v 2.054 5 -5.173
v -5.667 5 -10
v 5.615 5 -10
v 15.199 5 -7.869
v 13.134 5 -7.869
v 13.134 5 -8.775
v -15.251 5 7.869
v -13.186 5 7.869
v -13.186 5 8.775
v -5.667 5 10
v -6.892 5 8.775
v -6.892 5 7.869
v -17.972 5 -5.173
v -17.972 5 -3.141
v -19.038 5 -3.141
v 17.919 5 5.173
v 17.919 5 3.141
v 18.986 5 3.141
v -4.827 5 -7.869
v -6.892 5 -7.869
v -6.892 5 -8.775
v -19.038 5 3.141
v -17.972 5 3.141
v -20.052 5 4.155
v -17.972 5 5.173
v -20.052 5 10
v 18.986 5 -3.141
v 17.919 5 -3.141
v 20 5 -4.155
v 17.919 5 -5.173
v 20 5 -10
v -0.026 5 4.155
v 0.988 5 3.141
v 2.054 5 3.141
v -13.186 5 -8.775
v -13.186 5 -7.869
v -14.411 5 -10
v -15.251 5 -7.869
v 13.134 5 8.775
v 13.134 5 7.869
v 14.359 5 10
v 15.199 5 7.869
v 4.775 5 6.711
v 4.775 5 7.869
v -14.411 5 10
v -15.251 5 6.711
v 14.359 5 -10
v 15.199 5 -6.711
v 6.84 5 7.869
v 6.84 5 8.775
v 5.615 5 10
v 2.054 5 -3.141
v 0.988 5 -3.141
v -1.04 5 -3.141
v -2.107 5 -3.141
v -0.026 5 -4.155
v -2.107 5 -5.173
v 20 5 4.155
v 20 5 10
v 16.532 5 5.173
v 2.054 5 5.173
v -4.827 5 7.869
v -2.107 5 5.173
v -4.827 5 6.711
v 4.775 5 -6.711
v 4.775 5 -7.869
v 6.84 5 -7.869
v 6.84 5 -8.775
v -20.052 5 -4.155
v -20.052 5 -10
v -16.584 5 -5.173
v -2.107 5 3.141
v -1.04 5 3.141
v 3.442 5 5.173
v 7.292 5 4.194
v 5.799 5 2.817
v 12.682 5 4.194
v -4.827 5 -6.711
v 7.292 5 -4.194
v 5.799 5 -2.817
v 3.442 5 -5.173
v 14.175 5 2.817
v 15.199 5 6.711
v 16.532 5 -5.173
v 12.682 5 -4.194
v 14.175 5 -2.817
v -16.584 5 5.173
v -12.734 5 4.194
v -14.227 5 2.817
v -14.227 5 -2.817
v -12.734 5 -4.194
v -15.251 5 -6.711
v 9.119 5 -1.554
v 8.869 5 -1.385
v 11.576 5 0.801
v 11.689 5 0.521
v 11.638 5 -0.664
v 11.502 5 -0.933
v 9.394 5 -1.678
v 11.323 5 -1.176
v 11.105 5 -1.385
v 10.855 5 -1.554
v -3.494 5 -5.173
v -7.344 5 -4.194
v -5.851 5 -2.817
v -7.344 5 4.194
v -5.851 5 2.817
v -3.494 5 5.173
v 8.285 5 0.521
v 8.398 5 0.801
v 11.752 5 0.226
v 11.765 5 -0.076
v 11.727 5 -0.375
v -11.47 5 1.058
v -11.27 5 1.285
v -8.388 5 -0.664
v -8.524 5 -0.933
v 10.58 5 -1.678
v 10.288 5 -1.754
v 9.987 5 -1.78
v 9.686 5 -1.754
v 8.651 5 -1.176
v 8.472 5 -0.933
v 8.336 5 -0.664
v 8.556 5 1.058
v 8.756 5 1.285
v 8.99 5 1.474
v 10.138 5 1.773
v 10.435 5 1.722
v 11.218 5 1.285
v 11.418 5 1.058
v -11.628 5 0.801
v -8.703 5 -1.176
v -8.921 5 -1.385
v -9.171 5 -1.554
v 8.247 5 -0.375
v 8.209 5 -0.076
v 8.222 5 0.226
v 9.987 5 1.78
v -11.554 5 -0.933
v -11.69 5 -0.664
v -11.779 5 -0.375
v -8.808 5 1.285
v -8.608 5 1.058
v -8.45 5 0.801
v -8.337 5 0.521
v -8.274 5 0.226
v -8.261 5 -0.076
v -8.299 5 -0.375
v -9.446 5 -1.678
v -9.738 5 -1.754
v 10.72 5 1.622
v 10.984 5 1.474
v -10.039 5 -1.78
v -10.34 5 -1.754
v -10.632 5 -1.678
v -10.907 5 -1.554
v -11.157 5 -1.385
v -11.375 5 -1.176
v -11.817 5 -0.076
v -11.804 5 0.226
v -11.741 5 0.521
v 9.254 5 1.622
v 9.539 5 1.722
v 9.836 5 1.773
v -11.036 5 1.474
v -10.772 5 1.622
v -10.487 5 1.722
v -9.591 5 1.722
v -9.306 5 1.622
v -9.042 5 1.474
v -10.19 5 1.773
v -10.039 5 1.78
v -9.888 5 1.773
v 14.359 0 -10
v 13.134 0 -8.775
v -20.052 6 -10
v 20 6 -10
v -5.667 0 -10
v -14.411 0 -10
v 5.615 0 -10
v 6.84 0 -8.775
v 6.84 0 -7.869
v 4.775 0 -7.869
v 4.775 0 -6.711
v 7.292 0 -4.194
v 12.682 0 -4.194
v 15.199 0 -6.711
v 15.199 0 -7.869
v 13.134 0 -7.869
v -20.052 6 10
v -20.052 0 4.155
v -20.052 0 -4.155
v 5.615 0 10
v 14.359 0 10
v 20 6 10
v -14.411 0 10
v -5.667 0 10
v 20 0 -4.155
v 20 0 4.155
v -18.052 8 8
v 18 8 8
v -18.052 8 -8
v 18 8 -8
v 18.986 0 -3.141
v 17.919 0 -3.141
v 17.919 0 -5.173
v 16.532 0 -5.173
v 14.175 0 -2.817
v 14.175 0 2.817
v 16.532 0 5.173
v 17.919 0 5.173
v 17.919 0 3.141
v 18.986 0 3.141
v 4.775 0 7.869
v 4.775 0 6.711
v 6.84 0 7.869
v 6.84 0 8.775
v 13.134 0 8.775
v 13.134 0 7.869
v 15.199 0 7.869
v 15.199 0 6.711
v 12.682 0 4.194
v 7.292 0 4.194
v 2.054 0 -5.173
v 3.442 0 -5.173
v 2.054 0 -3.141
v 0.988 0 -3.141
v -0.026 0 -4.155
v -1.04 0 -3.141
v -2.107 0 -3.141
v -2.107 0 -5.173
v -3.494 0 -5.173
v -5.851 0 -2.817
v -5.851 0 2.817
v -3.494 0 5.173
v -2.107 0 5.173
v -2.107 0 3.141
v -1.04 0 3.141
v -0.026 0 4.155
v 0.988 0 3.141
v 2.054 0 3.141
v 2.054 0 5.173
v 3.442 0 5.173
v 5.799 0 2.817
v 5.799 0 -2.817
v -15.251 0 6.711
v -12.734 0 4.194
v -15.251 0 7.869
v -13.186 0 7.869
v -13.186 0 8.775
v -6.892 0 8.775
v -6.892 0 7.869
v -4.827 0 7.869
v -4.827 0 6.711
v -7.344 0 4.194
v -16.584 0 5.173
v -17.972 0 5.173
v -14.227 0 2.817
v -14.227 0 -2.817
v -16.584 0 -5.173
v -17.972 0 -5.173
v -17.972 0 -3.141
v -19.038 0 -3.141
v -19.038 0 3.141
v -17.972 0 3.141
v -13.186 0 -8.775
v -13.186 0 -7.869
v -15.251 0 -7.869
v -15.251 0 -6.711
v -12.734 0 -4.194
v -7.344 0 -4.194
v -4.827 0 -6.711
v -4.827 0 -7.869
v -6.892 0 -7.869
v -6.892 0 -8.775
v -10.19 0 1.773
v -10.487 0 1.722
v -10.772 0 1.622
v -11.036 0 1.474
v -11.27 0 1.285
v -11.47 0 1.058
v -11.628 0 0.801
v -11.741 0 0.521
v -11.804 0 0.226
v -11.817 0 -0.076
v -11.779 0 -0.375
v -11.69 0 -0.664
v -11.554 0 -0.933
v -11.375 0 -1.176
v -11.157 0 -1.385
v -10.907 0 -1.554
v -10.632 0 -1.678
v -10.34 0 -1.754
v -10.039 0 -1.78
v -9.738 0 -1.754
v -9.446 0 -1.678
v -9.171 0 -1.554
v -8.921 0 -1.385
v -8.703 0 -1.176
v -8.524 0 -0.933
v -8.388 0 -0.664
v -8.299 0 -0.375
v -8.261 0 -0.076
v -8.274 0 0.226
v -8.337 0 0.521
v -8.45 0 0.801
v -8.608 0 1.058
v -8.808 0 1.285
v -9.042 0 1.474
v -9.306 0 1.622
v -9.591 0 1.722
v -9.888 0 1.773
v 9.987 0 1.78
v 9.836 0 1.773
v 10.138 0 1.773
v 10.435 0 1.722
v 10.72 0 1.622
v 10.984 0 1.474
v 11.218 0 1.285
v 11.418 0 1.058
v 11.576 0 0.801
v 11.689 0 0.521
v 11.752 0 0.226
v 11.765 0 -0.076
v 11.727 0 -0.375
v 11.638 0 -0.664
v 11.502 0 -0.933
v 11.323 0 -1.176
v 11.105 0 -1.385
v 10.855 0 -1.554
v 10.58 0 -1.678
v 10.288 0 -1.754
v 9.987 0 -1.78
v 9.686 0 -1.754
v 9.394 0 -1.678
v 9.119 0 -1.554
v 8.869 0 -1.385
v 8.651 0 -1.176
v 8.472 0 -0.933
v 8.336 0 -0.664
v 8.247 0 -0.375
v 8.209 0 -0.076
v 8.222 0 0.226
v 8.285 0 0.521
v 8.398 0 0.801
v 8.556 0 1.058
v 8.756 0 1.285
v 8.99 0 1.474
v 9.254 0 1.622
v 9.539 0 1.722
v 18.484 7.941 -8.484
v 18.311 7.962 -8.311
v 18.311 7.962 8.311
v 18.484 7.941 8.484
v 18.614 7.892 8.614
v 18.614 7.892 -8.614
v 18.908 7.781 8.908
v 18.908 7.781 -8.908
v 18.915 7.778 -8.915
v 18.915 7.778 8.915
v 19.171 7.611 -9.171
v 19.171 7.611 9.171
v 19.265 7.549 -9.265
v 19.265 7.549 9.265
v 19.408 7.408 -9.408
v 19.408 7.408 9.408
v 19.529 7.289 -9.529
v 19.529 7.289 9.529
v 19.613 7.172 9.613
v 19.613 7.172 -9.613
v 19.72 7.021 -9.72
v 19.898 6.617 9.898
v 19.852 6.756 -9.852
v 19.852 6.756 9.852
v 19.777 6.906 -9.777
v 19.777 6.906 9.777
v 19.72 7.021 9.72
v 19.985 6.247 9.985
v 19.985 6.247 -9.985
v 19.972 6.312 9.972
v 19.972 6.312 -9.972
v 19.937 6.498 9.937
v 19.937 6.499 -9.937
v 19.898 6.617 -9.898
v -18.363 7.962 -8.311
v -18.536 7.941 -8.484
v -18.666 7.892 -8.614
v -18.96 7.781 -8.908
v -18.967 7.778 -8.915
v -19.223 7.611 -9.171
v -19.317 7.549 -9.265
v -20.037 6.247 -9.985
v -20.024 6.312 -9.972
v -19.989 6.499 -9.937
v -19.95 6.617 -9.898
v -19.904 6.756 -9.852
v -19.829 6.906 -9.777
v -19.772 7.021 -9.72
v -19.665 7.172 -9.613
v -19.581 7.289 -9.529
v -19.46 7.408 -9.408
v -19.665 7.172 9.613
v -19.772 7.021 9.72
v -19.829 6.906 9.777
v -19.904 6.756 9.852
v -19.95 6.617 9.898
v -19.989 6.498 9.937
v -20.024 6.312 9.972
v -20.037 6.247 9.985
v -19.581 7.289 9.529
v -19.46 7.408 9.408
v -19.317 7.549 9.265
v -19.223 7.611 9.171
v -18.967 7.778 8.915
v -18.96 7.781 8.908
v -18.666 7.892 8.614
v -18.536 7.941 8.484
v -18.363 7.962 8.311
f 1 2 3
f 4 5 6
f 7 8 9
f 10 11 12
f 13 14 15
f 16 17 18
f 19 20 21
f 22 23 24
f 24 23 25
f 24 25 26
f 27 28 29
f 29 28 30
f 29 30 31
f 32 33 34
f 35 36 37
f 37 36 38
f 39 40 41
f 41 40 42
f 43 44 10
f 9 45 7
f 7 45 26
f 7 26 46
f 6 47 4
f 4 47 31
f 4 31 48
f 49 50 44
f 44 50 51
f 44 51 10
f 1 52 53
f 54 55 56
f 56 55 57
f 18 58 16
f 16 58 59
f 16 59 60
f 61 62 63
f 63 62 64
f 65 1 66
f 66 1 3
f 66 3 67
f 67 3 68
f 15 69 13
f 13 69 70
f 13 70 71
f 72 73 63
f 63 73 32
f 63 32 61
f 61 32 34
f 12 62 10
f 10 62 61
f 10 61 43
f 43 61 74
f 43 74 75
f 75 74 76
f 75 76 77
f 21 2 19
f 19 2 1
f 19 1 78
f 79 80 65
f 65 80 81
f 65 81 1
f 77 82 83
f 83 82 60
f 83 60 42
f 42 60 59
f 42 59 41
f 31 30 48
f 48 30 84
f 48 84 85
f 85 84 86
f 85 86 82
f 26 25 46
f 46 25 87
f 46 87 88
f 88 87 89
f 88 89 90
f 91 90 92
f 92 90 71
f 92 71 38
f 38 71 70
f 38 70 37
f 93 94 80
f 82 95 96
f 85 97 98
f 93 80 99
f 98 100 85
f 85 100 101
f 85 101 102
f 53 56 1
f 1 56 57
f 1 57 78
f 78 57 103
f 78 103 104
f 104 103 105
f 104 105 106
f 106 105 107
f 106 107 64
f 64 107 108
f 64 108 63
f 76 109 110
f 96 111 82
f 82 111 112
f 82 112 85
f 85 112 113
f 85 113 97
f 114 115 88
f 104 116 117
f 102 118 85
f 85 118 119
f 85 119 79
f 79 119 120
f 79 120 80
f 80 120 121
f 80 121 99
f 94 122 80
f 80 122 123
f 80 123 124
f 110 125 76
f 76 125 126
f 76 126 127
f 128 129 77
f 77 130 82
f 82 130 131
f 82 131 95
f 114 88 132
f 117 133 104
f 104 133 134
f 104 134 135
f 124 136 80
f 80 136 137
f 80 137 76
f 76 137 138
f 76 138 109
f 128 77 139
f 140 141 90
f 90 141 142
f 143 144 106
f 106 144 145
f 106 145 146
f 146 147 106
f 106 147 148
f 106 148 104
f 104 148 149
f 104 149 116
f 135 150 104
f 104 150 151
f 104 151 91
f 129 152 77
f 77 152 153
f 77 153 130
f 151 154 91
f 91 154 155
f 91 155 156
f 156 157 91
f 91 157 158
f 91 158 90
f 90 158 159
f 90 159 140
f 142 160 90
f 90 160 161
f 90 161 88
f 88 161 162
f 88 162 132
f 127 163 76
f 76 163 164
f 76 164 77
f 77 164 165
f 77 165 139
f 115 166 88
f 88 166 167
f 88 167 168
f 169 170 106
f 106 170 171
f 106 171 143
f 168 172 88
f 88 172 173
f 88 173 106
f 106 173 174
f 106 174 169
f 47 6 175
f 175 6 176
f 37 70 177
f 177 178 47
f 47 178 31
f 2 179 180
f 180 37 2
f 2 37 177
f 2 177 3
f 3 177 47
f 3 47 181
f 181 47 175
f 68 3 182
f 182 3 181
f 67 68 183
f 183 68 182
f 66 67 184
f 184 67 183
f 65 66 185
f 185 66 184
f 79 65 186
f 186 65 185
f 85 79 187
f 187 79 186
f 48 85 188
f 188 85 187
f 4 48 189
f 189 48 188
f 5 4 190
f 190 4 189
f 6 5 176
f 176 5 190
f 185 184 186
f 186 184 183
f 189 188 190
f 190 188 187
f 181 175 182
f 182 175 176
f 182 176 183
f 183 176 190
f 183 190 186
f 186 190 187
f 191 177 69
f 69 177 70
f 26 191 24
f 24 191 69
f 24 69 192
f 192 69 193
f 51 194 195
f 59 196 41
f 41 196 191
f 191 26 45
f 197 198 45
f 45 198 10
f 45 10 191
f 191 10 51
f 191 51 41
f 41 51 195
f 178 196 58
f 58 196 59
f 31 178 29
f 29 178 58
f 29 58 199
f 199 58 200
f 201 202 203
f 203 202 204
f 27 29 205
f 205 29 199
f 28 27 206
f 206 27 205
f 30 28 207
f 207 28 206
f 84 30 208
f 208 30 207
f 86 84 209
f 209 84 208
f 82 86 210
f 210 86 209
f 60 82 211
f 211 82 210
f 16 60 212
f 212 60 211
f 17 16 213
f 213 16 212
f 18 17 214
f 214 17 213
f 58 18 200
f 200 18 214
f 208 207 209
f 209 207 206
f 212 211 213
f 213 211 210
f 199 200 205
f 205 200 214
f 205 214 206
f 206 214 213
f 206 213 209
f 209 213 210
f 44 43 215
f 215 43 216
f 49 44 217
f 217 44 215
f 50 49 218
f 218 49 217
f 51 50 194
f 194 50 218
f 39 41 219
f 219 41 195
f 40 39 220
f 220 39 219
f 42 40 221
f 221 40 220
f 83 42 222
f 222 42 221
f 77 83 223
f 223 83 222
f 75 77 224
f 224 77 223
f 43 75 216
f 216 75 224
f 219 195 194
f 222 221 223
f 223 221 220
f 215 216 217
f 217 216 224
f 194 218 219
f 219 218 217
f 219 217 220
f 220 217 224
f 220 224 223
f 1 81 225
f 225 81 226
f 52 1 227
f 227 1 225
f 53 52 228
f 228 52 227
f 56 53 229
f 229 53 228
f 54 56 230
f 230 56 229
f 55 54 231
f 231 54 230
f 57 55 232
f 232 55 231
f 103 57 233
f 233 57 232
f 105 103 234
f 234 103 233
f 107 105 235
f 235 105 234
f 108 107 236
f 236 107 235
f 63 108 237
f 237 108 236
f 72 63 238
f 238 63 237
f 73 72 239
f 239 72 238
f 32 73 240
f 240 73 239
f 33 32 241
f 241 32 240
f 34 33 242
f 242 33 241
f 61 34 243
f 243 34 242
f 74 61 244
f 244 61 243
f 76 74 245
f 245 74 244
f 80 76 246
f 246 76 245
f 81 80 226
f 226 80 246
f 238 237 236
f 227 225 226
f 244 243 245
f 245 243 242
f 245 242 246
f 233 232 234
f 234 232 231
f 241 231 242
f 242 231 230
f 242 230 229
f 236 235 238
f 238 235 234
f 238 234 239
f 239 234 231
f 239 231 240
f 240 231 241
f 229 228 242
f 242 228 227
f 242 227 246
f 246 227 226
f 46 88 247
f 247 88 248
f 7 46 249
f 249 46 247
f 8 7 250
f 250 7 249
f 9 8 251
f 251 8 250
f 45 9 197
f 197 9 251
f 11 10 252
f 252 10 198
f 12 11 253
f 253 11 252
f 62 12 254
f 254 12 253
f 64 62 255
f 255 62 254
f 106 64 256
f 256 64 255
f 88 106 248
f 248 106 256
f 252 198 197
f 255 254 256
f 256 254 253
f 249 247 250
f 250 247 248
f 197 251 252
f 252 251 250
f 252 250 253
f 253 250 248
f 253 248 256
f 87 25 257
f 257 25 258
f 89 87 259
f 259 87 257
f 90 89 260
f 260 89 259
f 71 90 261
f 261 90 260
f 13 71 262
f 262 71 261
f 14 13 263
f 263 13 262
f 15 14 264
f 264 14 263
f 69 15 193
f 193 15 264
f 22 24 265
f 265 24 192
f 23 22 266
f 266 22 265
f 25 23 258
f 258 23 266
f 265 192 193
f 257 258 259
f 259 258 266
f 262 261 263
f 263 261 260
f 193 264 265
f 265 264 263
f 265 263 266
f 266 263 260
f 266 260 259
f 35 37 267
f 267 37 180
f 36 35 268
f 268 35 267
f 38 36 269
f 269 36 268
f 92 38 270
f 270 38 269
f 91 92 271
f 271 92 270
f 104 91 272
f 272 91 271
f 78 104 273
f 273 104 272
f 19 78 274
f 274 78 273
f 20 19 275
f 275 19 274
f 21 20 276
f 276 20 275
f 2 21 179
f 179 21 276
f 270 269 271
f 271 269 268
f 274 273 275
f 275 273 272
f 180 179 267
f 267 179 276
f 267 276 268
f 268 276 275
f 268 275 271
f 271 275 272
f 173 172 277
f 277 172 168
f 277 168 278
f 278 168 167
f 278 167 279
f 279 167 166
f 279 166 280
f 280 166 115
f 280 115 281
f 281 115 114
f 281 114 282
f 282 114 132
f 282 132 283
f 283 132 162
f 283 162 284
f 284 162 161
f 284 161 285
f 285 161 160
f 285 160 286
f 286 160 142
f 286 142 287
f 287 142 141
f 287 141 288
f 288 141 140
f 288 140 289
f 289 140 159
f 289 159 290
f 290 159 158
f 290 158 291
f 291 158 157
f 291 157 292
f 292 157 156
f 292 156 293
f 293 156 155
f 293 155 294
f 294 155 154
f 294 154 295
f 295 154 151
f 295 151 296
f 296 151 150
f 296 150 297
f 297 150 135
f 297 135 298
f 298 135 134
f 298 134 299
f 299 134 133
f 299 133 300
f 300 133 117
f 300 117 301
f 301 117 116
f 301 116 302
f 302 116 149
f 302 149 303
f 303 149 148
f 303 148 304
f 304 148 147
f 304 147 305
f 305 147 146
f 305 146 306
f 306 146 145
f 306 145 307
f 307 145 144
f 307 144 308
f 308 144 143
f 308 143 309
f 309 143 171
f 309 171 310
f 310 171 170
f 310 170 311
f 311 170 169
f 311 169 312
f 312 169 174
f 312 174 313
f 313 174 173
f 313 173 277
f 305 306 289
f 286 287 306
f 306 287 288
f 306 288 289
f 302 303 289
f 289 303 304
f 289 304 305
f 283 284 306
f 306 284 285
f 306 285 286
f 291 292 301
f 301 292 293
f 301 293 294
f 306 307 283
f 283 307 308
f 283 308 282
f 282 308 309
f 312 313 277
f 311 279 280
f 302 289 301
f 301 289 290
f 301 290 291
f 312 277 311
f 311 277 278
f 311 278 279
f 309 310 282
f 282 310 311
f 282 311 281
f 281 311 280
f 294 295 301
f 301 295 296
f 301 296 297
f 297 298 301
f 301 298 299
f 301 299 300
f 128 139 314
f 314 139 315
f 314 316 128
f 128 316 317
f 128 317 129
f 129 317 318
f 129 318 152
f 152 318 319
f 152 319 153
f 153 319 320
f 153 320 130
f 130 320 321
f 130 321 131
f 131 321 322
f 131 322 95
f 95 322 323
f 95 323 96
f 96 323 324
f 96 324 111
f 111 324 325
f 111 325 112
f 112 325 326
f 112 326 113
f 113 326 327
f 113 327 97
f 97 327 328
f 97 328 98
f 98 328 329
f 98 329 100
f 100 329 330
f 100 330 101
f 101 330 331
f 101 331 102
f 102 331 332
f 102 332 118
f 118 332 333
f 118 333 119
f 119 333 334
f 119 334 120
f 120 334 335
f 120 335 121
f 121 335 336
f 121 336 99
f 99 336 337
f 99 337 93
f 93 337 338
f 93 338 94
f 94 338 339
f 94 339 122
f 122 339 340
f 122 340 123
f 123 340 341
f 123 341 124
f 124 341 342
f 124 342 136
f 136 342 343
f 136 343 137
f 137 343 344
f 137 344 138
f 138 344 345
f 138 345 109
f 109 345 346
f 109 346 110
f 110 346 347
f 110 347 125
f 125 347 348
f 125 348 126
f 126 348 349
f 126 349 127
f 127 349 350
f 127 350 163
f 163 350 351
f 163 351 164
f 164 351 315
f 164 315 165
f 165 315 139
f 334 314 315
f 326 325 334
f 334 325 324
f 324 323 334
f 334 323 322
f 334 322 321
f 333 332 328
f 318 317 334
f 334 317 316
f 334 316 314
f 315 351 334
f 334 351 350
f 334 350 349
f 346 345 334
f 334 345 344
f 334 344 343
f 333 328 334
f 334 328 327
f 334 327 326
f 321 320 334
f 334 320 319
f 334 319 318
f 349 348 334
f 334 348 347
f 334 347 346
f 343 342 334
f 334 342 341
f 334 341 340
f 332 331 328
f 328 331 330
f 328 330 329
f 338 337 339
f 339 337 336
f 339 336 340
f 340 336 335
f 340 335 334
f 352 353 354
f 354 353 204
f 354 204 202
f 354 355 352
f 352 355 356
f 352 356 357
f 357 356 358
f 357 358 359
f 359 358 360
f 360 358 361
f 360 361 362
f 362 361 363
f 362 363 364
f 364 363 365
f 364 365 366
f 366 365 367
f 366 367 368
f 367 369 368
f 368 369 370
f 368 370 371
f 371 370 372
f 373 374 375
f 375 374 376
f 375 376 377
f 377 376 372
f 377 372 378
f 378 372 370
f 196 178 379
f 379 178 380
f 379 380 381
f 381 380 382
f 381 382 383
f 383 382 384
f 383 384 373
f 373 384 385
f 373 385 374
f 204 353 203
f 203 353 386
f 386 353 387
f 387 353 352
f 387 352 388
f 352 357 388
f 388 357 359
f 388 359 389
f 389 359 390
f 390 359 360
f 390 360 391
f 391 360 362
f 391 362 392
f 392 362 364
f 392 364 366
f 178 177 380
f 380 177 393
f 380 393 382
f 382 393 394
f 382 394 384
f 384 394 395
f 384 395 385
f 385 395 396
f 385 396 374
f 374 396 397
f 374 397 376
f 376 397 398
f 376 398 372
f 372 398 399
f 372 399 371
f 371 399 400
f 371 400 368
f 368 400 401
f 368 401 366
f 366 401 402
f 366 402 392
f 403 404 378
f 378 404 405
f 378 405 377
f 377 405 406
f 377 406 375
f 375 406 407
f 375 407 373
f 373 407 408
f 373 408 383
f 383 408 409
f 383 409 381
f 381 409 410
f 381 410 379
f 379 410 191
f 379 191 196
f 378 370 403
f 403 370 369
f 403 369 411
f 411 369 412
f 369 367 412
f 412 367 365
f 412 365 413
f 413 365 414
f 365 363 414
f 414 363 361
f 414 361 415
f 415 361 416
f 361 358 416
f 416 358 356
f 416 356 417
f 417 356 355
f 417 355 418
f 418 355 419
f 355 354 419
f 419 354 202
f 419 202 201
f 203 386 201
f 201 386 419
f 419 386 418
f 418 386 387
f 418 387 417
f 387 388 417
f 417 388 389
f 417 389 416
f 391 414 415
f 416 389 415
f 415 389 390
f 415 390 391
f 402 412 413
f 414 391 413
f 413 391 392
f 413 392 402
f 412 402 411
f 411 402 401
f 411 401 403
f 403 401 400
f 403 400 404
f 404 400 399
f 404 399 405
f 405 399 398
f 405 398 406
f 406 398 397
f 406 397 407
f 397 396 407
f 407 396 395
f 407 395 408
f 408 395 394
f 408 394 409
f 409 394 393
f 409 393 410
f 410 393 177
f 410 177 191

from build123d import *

# Parameters (mm, degrees)
CROQUIS2_R                = 1.779687177
SALIENTE_EXTRUIR1_DEPTH   = 5
SALIENTE_EXTRUIR1_2_DEPTH = 5
SALIENTE_EXTRUIR1_3_DEPTH = 5
SALIENTE_EXTRUIR1_4_DEPTH = 5
SALIENTE_EXTRUIR1_5_DEPTH = 5
SALIENTE_EXTRUIR1_6_DEPTH = 5
SALIENTE_EXTRUIR1_7_DEPTH = 5
SALIENTE_EXTRUIR1_8_DEPTH = 5
SALIENTE_EXTRUIR1_9_DEPTH = 5
CROQUIS3_W                = 40.052022685
CROQUIS3_H                = 20
SALIENTE_EXTRUIR2_DEPTH   = 3
REDONDEO1_R               = 2


with BuildPart() as part:
    # Croquis2 → Saliente-Extruir1 (new body)
    with BuildSketch(Plane(origin=(0, 0, 0), x_dir=(1, 0, 0), z_dir=(0, 1, 0))):
        with Locations(Location((-10.039017014, 0, 0), (0, 0, 90))):
            Circle(CROQUIS2_R)
    extrude(amount=SALIENTE_EXTRUIR1_DEPTH)



with BuildPart() as body_2:
    # Croquis2 → Saliente-Extruir1 2 (new body)
    with BuildSketch(Plane(origin=(0, 0, 0), x_dir=(1, 0, 0), z_dir=(0, 1, 0))):
        with Locations(Location((9.986994329, 0, 0), (0, 0, 270))):
            Circle(CROQUIS2_R)
    extrude(amount=SALIENTE_EXTRUIR1_2_DEPTH)


with BuildPart() as body_3:
    # Croquis2 → Saliente-Extruir1 3 (new body)
    with BuildSketch(Plane(origin=(0, 0, 0), x_dir=(1, 0, 0), z_dir=(0, 1, 0))):
        Polygon((5.614984779, 10), (14.359003879, 10), (13.134466077, 8.775462198), (13.134466077, 7.868577354), (15.198808852, 7.868577354), (15.198808852, 6.711119422), (12.681851378, 4.194161948), (7.292137279, 4.194161948), (4.775179805, 6.711119422), (4.775179805, 7.868577354), (6.839522581, 7.868577354), (6.839522581, 8.775462198), align=None)
    extrude(amount=SALIENTE_EXTRUIR1_3_DEPTH)


with BuildPart() as body_4:
    # Croquis2 → Saliente-Extruir1 4 (new body)
    with BuildSketch(Plane(origin=(0, 0, 0), x_dir=(1, 0, 0), z_dir=(0, 1, 0))):
        Polygon((20, 4.155027818), (20, -4.155027818), (18.985761672, -3.14078949), (17.919495795, -3.14078949), (17.919495795, -5.172992947), (16.531532714, -5.172992947), (14.175115642, -2.816575874), (14.175115642, 2.816575874), (16.531532714, 5.172992947), (17.919495795, 5.172992947), (17.919495795, 3.14078949), (18.985761672, 3.14078949), align=None)
    extrude(amount=SALIENTE_EXTRUIR1_4_DEPTH)


with BuildPart() as body_5:
    # Croquis2 → Saliente-Extruir1 5 (new body)
    with BuildSketch(Plane(origin=(0, 0, 0), x_dir=(1, 0, 0), z_dir=(0, 1, 0))):
        Polygon((-0.026011343, 4.155027818), (-1.040249671, 3.14078949), (-2.106515548, 3.14078949), (-2.106515548, 5.172992947), (-3.494478629, 5.172992947), (-5.850895701, 2.816575874), (-5.850895701, -2.816575874), (-3.494478629, -5.172992947), (-2.106515548, -5.172992947), (-2.106515548, -3.14078949), (-1.040249671, -3.14078949), (-0.026011343, -4.155027818), (0.988226986, -3.14078949), (2.054492862, -3.14078949), (2.054492862, -5.172992947), (3.442455943, -5.172992947), (5.798873016, -2.816575874), (5.798873016, 2.816575874), (3.442455943, 5.172992947), (2.054492862, 5.172992947), (2.054492862, 3.14078949), (0.988226986, 3.14078949), align=None)
    extrude(amount=SALIENTE_EXTRUIR1_5_DEPTH)


with BuildPart() as body_6:
    # Croquis2 → Saliente-Extruir1 6 (new body)
    with BuildSketch(Plane(origin=(0, 0, 0), x_dir=(1, 0, 0), z_dir=(0, 1, 0))):
        Polygon((4.775179805, -6.711119422), (7.292137279, -4.194161948), (12.681851378, -4.194161948), (15.198808852, -6.711119422), (15.198808852, -7.868577354), (13.134466077, -7.868577354), (13.134466077, -8.775462198), (14.359003879, -10), (5.614984779, -10), (6.839522581, -8.775462198), (6.839522581, -7.868577354), (4.775179805, -7.868577354), align=None)
    extrude(amount=SALIENTE_EXTRUIR1_6_DEPTH)


with BuildPart() as body_7:
    # Croquis2 → Saliente-Extruir1 7 (new body)
    with BuildSketch(Plane(origin=(0, 0, 0), x_dir=(1, 0, 0), z_dir=(0, 1, 0))):
        Polygon((-12.733874064, -4.194161948), (-7.344159964, -4.194161948), (-4.82720249, -6.711119422), (-4.82720249, -7.868577354), (-6.891545266, -7.868577354), (-6.891545266, -8.775462198), (-5.667007464, -10), (-14.411026564, -10), (-13.186488762, -8.775462198), (-13.186488762, -7.868577354), (-15.250831538, -7.868577354), (-15.250831538, -6.711119422), align=None)
    extrude(amount=SALIENTE_EXTRUIR1_7_DEPTH)


with BuildPart() as body_8:
    # Croquis2 → Saliente-Extruir1 8 (new body)
    with BuildSketch(Plane(origin=(0, 0, 0), x_dir=(1, 0, 0), z_dir=(0, 1, 0))):
        Polygon((-16.583555399, -5.172992947), (-14.227138327, -2.816575874), (-14.227138327, 2.816575874), (-16.583555399, 5.172992947), (-17.97151848, 5.172992947), (-17.97151848, 3.14078949), (-19.037784357, 3.14078949), (-20.052022685, 4.155027818), (-20.052022685, -4.155027818), (-19.037784357, -3.14078949), (-17.97151848, -3.14078949), (-17.97151848, -5.172992947), align=None)
    extrude(amount=SALIENTE_EXTRUIR1_8_DEPTH)


with BuildPart() as body_9:
    # Croquis2 → Saliente-Extruir1 9 (new body)
    with BuildSketch(Plane(origin=(0, 0, 0), x_dir=(1, 0, 0), z_dir=(0, 1, 0))):
        Polygon((-5.667007464, 10), (-6.891545266, 8.775462198), (-6.891545266, 7.868577354), (-4.82720249, 7.868577354), (-4.82720249, 6.711119422), (-7.344159964, 4.194161948), (-12.733874064, 4.194161948), (-15.250831538, 6.711119422), (-15.250831538, 7.868577354), (-13.186488762, 7.868577354), (-13.186488762, 8.775462198), (-14.411026564, 10), align=None)
    extrude(amount=SALIENTE_EXTRUIR1_9_DEPTH)


with BuildPart() as part_1:
    add(part.part)

    add(body_2.part)  # Saliente-Extruir2 merges body 2

    add(body_3.part)  # Saliente-Extruir2 merges body 3

    add(body_4.part)  # Saliente-Extruir2 merges body 4

    add(body_5.part)  # Saliente-Extruir2 merges body 5

    add(body_6.part)  # Saliente-Extruir2 merges body 6

    add(body_7.part)  # Saliente-Extruir2 merges body 7

    add(body_8.part)  # Saliente-Extruir2 merges body 8

    add(body_9.part)  # Saliente-Extruir2 merges body 9
    # Croquis3 → Saliente-Extruir2 (add)
    with BuildSketch(Plane(origin=(0, 5, 0), x_dir=(1, 0, 0), z_dir=(0, 1, 0))):
        with Locations((-0.026011343, 0)):
            Rectangle(CROQUIS3_W, CROQUIS3_H)
    extrude(amount=SALIENTE_EXTRUIR2_DEPTH)

    # Redondeo1
    redondeo1_edges = [part_1.edges().sort_by_distance(p)[0] for p in [
        (-20.052022685, 8, 0),
        (-0.026011343, 8, 10),
        (20, 8, 0),
        (-0.026011343, 8, -10),
    ]]
    fillet(redondeo1_edges, radius=REDONDEO1_R)


solid = part_1.part
